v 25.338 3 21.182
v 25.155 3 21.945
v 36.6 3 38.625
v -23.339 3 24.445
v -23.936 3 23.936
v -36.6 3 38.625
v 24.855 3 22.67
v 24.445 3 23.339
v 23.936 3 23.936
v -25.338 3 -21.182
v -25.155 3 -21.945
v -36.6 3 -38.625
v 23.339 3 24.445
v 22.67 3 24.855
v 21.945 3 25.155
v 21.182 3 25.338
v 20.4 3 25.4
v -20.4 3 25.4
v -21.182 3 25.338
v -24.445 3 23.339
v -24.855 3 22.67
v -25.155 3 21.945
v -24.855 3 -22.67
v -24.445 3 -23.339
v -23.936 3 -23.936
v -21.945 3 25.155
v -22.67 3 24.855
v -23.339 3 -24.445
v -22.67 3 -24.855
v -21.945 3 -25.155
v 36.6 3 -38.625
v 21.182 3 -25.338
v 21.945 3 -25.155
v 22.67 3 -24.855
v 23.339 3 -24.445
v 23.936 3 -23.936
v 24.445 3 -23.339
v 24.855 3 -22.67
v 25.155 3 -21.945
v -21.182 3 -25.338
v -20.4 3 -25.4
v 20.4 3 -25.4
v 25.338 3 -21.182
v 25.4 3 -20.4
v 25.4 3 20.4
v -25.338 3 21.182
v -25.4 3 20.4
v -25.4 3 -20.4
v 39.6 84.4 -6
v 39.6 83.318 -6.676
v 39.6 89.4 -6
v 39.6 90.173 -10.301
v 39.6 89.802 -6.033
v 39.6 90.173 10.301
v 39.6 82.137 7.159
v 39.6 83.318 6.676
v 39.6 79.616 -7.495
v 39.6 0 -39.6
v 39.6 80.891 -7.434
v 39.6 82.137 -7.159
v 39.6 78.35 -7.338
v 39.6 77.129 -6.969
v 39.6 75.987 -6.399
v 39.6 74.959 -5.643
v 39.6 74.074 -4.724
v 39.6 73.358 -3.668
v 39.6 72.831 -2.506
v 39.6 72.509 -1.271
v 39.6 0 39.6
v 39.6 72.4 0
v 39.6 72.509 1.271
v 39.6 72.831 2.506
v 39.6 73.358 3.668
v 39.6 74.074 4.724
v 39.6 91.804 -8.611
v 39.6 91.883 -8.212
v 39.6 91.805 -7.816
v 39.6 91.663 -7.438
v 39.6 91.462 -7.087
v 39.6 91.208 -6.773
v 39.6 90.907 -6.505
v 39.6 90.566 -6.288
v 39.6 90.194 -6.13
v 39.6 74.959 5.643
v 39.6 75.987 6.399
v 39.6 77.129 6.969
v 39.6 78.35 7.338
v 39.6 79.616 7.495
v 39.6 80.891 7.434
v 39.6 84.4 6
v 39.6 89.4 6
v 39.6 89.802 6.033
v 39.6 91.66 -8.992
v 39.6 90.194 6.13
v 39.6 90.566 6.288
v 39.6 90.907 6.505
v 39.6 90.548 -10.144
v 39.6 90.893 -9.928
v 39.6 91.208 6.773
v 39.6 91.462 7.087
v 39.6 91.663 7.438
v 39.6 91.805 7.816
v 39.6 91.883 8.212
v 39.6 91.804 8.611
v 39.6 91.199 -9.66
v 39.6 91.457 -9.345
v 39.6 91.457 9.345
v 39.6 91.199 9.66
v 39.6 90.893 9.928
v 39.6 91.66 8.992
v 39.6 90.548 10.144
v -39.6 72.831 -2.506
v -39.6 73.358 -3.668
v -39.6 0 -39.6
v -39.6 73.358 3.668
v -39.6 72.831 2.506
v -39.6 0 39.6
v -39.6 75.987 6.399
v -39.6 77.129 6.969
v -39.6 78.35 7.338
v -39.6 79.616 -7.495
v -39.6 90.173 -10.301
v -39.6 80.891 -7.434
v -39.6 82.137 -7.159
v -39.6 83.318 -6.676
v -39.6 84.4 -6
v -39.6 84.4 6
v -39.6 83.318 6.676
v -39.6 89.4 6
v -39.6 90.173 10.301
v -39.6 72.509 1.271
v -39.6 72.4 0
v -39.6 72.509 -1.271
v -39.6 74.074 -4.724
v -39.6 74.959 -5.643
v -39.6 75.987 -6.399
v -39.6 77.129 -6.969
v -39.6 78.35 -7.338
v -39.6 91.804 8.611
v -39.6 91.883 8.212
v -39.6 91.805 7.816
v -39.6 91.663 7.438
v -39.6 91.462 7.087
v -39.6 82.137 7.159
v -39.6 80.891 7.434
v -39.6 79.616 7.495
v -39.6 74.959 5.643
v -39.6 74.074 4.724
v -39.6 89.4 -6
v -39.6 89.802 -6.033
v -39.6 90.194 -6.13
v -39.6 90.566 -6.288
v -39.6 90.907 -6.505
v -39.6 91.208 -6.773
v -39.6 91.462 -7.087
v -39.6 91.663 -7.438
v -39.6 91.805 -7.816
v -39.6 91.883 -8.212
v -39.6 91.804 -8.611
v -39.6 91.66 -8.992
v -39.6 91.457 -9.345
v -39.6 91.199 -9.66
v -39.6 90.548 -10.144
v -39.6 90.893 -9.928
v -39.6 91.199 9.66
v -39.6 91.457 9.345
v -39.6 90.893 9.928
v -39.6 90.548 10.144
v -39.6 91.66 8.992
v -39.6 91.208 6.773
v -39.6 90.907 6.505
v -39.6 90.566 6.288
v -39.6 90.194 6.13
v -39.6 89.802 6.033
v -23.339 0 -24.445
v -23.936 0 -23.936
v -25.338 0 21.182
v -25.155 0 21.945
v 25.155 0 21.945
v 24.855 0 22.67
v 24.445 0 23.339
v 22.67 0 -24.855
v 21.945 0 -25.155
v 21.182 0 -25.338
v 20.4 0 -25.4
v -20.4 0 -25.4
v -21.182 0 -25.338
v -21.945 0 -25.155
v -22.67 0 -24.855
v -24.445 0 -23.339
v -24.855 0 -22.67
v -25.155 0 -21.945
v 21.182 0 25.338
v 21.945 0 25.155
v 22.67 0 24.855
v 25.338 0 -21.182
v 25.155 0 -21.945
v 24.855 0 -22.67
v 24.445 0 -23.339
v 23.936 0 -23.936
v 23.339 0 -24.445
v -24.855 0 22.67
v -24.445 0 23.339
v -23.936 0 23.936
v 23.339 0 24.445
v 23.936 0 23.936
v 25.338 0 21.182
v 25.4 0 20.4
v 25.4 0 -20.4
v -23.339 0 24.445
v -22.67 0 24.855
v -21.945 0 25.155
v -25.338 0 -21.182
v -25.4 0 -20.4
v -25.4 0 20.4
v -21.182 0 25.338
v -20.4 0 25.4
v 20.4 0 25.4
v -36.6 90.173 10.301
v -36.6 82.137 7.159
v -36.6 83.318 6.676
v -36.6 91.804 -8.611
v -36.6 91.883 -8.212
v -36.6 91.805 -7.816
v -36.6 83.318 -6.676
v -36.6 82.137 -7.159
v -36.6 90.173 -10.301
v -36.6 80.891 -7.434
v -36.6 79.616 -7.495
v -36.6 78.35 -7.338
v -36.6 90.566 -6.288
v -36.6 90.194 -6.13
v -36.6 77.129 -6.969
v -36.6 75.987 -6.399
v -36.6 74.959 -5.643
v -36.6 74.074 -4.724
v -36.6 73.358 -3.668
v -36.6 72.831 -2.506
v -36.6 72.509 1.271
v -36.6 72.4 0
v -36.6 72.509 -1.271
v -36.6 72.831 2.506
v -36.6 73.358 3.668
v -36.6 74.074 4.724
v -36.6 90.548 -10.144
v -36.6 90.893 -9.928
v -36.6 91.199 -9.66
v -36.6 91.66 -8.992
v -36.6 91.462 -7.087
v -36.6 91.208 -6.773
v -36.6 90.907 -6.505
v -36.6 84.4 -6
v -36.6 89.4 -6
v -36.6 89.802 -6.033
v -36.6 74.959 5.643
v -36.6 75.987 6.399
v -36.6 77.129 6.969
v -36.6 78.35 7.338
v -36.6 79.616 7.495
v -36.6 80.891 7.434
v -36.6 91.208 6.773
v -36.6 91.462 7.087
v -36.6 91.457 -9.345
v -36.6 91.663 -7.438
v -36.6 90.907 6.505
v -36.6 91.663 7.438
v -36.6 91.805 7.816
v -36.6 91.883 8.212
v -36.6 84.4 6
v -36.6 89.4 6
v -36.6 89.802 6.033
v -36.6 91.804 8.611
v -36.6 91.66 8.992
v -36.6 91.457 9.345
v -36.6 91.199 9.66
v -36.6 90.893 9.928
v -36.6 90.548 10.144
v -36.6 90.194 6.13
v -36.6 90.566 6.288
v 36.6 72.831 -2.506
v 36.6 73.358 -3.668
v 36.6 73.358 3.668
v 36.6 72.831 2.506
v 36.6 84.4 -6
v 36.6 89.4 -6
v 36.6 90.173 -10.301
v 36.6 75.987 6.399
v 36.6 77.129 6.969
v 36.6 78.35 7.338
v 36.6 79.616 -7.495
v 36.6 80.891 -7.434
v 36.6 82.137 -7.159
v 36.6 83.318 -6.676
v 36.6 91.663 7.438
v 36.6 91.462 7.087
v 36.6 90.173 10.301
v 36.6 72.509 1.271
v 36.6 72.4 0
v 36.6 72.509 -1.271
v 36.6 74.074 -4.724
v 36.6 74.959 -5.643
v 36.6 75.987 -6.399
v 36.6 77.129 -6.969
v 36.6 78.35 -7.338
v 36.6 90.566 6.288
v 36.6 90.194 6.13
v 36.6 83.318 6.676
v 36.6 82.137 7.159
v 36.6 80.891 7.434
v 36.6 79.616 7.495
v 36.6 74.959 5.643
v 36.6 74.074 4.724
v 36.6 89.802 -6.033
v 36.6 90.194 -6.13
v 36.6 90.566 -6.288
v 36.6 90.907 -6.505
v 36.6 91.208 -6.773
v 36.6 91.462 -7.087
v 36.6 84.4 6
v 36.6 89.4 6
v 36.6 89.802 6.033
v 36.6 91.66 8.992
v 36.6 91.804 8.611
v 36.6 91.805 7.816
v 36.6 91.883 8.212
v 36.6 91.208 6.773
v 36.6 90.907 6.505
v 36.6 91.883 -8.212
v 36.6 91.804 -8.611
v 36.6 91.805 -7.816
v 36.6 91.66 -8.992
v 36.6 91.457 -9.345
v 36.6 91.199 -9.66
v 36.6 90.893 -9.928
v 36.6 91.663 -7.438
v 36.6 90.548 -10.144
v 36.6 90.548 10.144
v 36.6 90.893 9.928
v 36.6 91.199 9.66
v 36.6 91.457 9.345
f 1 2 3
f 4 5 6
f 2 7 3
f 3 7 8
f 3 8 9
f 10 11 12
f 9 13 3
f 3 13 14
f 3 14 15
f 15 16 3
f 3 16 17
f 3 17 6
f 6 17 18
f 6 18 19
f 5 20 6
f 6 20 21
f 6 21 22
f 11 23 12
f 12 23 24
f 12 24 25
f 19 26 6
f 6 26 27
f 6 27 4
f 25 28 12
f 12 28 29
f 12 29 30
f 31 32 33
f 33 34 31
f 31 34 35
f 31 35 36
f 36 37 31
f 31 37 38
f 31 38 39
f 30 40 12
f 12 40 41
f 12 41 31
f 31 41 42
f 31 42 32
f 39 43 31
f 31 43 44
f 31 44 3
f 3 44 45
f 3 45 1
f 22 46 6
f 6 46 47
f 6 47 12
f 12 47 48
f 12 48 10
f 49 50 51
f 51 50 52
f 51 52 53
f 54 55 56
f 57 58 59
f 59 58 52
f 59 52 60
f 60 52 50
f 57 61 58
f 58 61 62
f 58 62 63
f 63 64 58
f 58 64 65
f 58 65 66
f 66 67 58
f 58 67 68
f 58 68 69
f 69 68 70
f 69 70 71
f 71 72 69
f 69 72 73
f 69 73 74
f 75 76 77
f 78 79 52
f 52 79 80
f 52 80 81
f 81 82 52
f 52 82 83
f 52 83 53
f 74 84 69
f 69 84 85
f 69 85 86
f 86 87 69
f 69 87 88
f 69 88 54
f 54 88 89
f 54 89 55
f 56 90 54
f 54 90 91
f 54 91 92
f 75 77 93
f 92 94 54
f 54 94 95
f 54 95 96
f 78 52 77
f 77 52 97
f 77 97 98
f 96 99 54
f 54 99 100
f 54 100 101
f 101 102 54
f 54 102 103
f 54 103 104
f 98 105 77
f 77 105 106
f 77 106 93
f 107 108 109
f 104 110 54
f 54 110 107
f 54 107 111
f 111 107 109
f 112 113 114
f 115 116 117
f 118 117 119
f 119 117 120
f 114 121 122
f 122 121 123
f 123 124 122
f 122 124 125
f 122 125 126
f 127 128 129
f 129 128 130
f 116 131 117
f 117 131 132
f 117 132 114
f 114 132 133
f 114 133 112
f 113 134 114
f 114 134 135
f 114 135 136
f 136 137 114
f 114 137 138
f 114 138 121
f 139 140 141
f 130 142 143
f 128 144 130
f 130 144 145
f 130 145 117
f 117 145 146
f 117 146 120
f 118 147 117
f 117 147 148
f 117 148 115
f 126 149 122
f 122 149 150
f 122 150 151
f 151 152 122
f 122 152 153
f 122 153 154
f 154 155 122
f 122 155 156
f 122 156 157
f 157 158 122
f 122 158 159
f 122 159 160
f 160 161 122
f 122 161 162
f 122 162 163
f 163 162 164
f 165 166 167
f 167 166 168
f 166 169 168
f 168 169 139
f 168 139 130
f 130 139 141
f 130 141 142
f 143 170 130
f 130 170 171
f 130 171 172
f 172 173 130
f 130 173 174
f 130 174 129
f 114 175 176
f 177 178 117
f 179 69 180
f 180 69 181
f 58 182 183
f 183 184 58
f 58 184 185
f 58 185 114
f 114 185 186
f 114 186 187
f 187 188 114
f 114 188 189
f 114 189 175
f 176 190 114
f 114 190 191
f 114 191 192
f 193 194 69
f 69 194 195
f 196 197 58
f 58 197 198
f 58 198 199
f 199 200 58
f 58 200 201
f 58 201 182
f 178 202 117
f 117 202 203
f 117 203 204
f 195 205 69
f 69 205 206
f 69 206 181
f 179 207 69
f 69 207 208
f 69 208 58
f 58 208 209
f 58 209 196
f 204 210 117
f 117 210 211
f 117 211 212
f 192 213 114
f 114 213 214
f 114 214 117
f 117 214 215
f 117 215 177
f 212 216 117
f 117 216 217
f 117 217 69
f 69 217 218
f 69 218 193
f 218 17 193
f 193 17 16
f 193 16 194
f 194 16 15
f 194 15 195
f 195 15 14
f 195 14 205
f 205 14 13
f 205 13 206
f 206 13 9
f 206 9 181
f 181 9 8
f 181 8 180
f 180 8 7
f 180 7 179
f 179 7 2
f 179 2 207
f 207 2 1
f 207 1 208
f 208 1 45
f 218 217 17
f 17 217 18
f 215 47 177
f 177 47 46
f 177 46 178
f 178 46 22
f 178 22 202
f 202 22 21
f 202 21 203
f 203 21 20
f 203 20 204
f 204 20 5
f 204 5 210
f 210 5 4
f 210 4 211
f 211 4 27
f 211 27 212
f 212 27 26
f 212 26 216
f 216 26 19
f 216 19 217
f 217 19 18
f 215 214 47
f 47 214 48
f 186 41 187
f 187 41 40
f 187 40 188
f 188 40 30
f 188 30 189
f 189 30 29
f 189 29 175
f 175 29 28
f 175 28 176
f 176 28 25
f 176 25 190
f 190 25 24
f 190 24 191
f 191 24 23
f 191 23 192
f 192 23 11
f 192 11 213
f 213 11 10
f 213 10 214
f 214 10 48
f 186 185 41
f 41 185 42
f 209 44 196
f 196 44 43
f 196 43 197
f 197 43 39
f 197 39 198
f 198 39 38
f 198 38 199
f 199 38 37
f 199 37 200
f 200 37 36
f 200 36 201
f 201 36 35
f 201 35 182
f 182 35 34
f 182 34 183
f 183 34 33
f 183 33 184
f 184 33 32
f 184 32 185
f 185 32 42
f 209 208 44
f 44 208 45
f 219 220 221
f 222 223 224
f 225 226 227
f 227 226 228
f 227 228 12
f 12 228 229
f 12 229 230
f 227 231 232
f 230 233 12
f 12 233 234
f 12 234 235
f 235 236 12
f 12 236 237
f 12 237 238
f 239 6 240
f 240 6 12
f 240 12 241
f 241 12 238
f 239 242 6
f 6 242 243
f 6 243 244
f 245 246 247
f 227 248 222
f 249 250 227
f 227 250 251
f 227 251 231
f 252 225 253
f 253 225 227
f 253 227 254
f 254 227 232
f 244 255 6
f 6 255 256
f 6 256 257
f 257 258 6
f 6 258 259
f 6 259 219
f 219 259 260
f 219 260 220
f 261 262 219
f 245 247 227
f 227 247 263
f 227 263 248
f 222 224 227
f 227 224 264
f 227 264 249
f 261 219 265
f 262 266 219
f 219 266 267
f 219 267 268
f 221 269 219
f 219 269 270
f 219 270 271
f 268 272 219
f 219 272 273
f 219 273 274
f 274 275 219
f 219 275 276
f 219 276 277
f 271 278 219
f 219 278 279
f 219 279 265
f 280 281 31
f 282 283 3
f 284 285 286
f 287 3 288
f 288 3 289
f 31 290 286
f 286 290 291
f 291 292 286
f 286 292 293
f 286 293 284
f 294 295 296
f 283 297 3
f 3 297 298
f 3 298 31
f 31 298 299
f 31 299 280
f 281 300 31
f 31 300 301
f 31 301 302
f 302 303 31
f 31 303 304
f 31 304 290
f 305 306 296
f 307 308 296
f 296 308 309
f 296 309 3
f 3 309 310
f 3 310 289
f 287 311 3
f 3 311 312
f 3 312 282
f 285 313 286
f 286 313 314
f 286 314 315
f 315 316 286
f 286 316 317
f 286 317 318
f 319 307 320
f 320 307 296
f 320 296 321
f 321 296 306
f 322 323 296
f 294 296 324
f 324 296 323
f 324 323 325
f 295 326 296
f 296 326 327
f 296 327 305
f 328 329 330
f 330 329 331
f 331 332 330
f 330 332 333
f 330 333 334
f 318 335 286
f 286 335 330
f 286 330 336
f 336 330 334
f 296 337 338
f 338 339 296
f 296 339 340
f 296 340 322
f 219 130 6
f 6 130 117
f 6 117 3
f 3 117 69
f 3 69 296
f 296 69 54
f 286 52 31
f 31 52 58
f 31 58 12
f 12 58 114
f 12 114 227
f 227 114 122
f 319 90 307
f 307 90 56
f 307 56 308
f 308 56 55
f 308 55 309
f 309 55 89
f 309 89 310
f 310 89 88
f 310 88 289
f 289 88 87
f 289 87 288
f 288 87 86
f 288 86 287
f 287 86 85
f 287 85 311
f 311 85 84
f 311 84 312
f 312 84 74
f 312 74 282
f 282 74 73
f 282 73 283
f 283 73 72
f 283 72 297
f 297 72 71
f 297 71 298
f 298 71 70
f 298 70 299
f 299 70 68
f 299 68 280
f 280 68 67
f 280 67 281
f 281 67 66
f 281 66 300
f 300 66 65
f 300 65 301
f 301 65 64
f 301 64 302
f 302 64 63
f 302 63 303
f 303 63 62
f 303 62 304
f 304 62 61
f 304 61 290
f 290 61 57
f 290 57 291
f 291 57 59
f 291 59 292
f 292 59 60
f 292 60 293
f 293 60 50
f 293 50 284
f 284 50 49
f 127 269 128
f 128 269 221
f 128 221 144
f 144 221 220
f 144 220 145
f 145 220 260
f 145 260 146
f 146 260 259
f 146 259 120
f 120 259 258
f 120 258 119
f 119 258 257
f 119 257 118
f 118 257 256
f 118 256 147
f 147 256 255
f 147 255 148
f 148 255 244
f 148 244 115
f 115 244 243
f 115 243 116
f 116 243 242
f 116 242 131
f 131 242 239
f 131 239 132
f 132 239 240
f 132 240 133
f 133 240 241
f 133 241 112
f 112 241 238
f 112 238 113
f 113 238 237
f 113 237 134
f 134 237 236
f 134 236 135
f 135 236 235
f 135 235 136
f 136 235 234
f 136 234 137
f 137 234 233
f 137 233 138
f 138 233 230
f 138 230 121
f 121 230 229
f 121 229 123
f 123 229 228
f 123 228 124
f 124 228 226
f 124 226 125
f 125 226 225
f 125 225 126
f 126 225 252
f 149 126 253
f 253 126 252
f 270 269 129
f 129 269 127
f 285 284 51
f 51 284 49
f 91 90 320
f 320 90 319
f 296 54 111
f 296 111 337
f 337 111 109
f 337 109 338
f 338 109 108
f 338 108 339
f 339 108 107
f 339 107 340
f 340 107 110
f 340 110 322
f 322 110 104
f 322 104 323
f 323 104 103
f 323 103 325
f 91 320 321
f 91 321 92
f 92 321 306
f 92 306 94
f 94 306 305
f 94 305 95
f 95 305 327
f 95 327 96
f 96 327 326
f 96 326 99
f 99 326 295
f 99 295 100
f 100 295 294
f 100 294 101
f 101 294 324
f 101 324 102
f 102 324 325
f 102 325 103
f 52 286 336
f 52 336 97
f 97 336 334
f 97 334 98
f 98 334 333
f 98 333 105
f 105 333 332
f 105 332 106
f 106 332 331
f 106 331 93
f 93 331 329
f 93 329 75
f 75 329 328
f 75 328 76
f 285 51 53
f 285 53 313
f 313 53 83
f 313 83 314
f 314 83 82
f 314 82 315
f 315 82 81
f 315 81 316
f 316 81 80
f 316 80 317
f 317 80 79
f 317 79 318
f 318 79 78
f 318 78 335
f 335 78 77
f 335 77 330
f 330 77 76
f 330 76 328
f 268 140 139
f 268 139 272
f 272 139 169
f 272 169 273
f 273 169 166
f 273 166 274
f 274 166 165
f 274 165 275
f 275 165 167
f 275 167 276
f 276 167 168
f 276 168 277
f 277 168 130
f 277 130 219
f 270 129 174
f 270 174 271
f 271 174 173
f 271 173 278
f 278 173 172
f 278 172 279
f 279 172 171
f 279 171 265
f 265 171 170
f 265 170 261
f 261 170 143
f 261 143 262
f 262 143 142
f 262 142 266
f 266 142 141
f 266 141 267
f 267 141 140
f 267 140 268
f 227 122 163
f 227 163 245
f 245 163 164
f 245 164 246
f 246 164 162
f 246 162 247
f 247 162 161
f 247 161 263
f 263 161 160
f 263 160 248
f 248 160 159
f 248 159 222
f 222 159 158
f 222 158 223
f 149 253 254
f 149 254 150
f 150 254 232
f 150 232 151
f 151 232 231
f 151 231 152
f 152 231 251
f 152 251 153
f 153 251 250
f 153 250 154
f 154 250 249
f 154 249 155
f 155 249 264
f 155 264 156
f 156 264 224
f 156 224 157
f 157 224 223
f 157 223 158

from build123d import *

# Parameters (mm, degrees)
SKETCH1_W           = 79.2
SKETCH1_H           = 79.2
BOSS_EXTRUDE1_DEPTH = 3
CUT_EXTRUDE1_DEPTH  = 3
SKETCH3_W           = 3
SKETCH3_H           = 79.2
BOSS_EXTRUDE2_DEPTH = 88.9
CUT_EXTRUDE2_DEPTH  = 88.9
SKETCH5_R           = 7.5
CUT_EXTRUDE3_DEPTH  = 88.9
SKETCH6_W           = 12
SKETCH6_H           = 15
CUT_EXTRUDE4_DEPTH  = 88.9
FILLET1_R           = 2.5


with BuildPart() as part:
    # Sketch1 → Boss-Extrude1 (new body)
    with BuildSketch(Plane(origin=(0, 0, 0), x_dir=(1, 0, 0), z_dir=(0, 1, 0))):
        Rectangle(SKETCH1_W, SKETCH1_H)
    extrude(amount=BOSS_EXTRUDE1_DEPTH)

    # Sketch2 → Cut-Extrude1 (cut)
    with BuildSketch(Plane(origin=(0, 3, 0), x_dir=(1, 0, 0), z_dir=(0, 1, 0))):
        with BuildLine():
            Line((-20.4, -25.4), (20.4, -25.4))
            ThreePointArc((20.4, -25.4), (23.935533906, -23.935533906), (25.4, -20.4))
            Line((25.4, -20.4), (25.4, 20.4))
            ThreePointArc((25.4, 20.4), (23.935533906, 23.935533906), (20.4, 25.4))
            Line((20.4, 25.4), (-20.4, 25.4))
            ThreePointArc((-20.4, 25.4), (-23.935533906, 23.935533906), (-25.4, 20.4))
            Line((-25.4, 20.4), (-25.4, -20.4))
            ThreePointArc((-25.4, -20.4), (-23.935533906, -23.935533906), (-20.4, -25.4))
        make_face()
    extrude(amount=-CUT_EXTRUDE1_DEPTH, mode=Mode.SUBTRACT)

    # Sketch3 → Boss-Extrude2 (add)
    with BuildSketch(Plane(origin=(0, 3, 0), x_dir=(1, 0, 0), z_dir=(0, 1, 0))):
        with Locations((-38.1, 0)):
            Rectangle(SKETCH3_W, SKETCH3_H)
        with Locations((38.1, 0)):
            Rectangle(SKETCH3_W, SKETCH3_H)
    extrude(amount=BOSS_EXTRUDE2_DEPTH)

    # Sketch4 → Cut-Extrude2 (cut)
    with BuildSketch(Plane(origin=(39.6, 0, 0), x_dir=(0, 0, -1), z_dir=(1, 0, 0))):
        Polygon((-39.6, 0), (-9.739879916, 91.9), (-41.709880552, 102.287682895), (-62.726275387, 13.336826297), align=None)
        Polygon((39.6, 0), (9.739879916, 91.9), (57.349998408, 101.564802913), align=None)
    extrude(amount=-CUT_EXTRUDE2_DEPTH, mode=Mode.SUBTRACT)

    # Sketch5 → Cut-Extrude3 (cut)
    with BuildSketch(Plane(origin=(39.6, 0, 0), x_dir=(0, 0, -1), z_dir=(1, 0, 0))):
        with Locations((0, 79.9)):
            Circle(SKETCH5_R)
    extrude(amount=-CUT_EXTRUDE3_DEPTH, mode=Mode.SUBTRACT)

    # Sketch6 → Cut-Extrude4 (cut)
    with BuildSketch(Plane.ZY.offset(39.6)):
        with Locations((0, 87.4)):
            Rectangle(SKETCH6_W, SKETCH6_H)
    extrude(amount=-CUT_EXTRUDE4_DEPTH, mode=Mode.SUBTRACT)

    # Fillet1
    # the kernel refuses this fillet: 2.5 mm, written as the material it takes off along each edge
    with BuildSketch(Plane(origin=(45.85, 91.9, 6), x_dir=(0, 0, 1), z_dir=(-1, 0, 0)), Plane(origin=(-30.35, 91.9, -6), x_dir=(0, -1, 0), z_dir=(-1, 0, 0))) as fillet1_piece_1:
        with BuildLine():
            CenterArc((FILLET1_R, -FILLET1_R), FILLET1_R, 90, 90)
            Line((0, -FILLET1_R), (0, 0))
            Line((0, 0), (FILLET1_R, 0))
        make_face()
    extrude(amount=15.5, mode=Mode.SUBTRACT)
    with BuildSketch(Plane(origin=(44.1408908, 91.9, 9.739879916), x_dir=(0, 0, -1), z_dir=(-1, 0, 0)), Plane(origin=(-32.0591092, 91.9, 9.739879916), x_dir=(0, 0, -1), z_dir=(-1, 0, 0))) as fillet1_piece_2:
        with BuildLine():
            CenterArc((FILLET1_R * 0.726542528005, FILLET1_R), FILLET1_R, 198, 72)
            Line((-FILLET1_R * 0.22451398829, FILLET1_R * 0.690983005625), (0, 0))
            Line((0, 0), (FILLET1_R * 0.726542528005, 0))
        make_face()
    extrude(amount=12.0817816, mode=Mode.SUBTRACT)
    with BuildSketch(Plane(origin=(30.35, 91.9, -6), x_dir=(0, -1, 0), z_dir=(1, 0, 0)), Plane(origin=(-45.85, 91.9, 6), x_dir=(0, 0, 1), z_dir=(1, 0, 0))) as fillet1_piece_3:
        with BuildLine():
            CenterArc((FILLET1_R, FILLET1_R), FILLET1_R, 180, 90)
            Line((0, FILLET1_R), (0, 0))
            Line((0, 0), (FILLET1_R, 0))
        make_face()
    extrude(amount=15.5, mode=Mode.SUBTRACT)
    with BuildSketch(Plane(origin=(44.1408908, 91.9, -9.739879916), x_dir=(0, 0, 1), z_dir=(-1, 0, 0)), Plane(origin=(-32.0591092, 91.9, -9.739879916), x_dir=(0, 0, 1), z_dir=(-1, 0, 0))) as fillet1_piece_4:
        with BuildLine():
            CenterArc((FILLET1_R * 0.726542528005, -FILLET1_R), FILLET1_R, 90, 72)
            Line((-FILLET1_R * 0.22451398829, -FILLET1_R * 0.690983005625), (0, 0))
            Line((0, 0), (FILLET1_R * 0.726542528005, 0))
        make_face()
    extrude(amount=12.0817816, mode=Mode.SUBTRACT)


solid = part.part
